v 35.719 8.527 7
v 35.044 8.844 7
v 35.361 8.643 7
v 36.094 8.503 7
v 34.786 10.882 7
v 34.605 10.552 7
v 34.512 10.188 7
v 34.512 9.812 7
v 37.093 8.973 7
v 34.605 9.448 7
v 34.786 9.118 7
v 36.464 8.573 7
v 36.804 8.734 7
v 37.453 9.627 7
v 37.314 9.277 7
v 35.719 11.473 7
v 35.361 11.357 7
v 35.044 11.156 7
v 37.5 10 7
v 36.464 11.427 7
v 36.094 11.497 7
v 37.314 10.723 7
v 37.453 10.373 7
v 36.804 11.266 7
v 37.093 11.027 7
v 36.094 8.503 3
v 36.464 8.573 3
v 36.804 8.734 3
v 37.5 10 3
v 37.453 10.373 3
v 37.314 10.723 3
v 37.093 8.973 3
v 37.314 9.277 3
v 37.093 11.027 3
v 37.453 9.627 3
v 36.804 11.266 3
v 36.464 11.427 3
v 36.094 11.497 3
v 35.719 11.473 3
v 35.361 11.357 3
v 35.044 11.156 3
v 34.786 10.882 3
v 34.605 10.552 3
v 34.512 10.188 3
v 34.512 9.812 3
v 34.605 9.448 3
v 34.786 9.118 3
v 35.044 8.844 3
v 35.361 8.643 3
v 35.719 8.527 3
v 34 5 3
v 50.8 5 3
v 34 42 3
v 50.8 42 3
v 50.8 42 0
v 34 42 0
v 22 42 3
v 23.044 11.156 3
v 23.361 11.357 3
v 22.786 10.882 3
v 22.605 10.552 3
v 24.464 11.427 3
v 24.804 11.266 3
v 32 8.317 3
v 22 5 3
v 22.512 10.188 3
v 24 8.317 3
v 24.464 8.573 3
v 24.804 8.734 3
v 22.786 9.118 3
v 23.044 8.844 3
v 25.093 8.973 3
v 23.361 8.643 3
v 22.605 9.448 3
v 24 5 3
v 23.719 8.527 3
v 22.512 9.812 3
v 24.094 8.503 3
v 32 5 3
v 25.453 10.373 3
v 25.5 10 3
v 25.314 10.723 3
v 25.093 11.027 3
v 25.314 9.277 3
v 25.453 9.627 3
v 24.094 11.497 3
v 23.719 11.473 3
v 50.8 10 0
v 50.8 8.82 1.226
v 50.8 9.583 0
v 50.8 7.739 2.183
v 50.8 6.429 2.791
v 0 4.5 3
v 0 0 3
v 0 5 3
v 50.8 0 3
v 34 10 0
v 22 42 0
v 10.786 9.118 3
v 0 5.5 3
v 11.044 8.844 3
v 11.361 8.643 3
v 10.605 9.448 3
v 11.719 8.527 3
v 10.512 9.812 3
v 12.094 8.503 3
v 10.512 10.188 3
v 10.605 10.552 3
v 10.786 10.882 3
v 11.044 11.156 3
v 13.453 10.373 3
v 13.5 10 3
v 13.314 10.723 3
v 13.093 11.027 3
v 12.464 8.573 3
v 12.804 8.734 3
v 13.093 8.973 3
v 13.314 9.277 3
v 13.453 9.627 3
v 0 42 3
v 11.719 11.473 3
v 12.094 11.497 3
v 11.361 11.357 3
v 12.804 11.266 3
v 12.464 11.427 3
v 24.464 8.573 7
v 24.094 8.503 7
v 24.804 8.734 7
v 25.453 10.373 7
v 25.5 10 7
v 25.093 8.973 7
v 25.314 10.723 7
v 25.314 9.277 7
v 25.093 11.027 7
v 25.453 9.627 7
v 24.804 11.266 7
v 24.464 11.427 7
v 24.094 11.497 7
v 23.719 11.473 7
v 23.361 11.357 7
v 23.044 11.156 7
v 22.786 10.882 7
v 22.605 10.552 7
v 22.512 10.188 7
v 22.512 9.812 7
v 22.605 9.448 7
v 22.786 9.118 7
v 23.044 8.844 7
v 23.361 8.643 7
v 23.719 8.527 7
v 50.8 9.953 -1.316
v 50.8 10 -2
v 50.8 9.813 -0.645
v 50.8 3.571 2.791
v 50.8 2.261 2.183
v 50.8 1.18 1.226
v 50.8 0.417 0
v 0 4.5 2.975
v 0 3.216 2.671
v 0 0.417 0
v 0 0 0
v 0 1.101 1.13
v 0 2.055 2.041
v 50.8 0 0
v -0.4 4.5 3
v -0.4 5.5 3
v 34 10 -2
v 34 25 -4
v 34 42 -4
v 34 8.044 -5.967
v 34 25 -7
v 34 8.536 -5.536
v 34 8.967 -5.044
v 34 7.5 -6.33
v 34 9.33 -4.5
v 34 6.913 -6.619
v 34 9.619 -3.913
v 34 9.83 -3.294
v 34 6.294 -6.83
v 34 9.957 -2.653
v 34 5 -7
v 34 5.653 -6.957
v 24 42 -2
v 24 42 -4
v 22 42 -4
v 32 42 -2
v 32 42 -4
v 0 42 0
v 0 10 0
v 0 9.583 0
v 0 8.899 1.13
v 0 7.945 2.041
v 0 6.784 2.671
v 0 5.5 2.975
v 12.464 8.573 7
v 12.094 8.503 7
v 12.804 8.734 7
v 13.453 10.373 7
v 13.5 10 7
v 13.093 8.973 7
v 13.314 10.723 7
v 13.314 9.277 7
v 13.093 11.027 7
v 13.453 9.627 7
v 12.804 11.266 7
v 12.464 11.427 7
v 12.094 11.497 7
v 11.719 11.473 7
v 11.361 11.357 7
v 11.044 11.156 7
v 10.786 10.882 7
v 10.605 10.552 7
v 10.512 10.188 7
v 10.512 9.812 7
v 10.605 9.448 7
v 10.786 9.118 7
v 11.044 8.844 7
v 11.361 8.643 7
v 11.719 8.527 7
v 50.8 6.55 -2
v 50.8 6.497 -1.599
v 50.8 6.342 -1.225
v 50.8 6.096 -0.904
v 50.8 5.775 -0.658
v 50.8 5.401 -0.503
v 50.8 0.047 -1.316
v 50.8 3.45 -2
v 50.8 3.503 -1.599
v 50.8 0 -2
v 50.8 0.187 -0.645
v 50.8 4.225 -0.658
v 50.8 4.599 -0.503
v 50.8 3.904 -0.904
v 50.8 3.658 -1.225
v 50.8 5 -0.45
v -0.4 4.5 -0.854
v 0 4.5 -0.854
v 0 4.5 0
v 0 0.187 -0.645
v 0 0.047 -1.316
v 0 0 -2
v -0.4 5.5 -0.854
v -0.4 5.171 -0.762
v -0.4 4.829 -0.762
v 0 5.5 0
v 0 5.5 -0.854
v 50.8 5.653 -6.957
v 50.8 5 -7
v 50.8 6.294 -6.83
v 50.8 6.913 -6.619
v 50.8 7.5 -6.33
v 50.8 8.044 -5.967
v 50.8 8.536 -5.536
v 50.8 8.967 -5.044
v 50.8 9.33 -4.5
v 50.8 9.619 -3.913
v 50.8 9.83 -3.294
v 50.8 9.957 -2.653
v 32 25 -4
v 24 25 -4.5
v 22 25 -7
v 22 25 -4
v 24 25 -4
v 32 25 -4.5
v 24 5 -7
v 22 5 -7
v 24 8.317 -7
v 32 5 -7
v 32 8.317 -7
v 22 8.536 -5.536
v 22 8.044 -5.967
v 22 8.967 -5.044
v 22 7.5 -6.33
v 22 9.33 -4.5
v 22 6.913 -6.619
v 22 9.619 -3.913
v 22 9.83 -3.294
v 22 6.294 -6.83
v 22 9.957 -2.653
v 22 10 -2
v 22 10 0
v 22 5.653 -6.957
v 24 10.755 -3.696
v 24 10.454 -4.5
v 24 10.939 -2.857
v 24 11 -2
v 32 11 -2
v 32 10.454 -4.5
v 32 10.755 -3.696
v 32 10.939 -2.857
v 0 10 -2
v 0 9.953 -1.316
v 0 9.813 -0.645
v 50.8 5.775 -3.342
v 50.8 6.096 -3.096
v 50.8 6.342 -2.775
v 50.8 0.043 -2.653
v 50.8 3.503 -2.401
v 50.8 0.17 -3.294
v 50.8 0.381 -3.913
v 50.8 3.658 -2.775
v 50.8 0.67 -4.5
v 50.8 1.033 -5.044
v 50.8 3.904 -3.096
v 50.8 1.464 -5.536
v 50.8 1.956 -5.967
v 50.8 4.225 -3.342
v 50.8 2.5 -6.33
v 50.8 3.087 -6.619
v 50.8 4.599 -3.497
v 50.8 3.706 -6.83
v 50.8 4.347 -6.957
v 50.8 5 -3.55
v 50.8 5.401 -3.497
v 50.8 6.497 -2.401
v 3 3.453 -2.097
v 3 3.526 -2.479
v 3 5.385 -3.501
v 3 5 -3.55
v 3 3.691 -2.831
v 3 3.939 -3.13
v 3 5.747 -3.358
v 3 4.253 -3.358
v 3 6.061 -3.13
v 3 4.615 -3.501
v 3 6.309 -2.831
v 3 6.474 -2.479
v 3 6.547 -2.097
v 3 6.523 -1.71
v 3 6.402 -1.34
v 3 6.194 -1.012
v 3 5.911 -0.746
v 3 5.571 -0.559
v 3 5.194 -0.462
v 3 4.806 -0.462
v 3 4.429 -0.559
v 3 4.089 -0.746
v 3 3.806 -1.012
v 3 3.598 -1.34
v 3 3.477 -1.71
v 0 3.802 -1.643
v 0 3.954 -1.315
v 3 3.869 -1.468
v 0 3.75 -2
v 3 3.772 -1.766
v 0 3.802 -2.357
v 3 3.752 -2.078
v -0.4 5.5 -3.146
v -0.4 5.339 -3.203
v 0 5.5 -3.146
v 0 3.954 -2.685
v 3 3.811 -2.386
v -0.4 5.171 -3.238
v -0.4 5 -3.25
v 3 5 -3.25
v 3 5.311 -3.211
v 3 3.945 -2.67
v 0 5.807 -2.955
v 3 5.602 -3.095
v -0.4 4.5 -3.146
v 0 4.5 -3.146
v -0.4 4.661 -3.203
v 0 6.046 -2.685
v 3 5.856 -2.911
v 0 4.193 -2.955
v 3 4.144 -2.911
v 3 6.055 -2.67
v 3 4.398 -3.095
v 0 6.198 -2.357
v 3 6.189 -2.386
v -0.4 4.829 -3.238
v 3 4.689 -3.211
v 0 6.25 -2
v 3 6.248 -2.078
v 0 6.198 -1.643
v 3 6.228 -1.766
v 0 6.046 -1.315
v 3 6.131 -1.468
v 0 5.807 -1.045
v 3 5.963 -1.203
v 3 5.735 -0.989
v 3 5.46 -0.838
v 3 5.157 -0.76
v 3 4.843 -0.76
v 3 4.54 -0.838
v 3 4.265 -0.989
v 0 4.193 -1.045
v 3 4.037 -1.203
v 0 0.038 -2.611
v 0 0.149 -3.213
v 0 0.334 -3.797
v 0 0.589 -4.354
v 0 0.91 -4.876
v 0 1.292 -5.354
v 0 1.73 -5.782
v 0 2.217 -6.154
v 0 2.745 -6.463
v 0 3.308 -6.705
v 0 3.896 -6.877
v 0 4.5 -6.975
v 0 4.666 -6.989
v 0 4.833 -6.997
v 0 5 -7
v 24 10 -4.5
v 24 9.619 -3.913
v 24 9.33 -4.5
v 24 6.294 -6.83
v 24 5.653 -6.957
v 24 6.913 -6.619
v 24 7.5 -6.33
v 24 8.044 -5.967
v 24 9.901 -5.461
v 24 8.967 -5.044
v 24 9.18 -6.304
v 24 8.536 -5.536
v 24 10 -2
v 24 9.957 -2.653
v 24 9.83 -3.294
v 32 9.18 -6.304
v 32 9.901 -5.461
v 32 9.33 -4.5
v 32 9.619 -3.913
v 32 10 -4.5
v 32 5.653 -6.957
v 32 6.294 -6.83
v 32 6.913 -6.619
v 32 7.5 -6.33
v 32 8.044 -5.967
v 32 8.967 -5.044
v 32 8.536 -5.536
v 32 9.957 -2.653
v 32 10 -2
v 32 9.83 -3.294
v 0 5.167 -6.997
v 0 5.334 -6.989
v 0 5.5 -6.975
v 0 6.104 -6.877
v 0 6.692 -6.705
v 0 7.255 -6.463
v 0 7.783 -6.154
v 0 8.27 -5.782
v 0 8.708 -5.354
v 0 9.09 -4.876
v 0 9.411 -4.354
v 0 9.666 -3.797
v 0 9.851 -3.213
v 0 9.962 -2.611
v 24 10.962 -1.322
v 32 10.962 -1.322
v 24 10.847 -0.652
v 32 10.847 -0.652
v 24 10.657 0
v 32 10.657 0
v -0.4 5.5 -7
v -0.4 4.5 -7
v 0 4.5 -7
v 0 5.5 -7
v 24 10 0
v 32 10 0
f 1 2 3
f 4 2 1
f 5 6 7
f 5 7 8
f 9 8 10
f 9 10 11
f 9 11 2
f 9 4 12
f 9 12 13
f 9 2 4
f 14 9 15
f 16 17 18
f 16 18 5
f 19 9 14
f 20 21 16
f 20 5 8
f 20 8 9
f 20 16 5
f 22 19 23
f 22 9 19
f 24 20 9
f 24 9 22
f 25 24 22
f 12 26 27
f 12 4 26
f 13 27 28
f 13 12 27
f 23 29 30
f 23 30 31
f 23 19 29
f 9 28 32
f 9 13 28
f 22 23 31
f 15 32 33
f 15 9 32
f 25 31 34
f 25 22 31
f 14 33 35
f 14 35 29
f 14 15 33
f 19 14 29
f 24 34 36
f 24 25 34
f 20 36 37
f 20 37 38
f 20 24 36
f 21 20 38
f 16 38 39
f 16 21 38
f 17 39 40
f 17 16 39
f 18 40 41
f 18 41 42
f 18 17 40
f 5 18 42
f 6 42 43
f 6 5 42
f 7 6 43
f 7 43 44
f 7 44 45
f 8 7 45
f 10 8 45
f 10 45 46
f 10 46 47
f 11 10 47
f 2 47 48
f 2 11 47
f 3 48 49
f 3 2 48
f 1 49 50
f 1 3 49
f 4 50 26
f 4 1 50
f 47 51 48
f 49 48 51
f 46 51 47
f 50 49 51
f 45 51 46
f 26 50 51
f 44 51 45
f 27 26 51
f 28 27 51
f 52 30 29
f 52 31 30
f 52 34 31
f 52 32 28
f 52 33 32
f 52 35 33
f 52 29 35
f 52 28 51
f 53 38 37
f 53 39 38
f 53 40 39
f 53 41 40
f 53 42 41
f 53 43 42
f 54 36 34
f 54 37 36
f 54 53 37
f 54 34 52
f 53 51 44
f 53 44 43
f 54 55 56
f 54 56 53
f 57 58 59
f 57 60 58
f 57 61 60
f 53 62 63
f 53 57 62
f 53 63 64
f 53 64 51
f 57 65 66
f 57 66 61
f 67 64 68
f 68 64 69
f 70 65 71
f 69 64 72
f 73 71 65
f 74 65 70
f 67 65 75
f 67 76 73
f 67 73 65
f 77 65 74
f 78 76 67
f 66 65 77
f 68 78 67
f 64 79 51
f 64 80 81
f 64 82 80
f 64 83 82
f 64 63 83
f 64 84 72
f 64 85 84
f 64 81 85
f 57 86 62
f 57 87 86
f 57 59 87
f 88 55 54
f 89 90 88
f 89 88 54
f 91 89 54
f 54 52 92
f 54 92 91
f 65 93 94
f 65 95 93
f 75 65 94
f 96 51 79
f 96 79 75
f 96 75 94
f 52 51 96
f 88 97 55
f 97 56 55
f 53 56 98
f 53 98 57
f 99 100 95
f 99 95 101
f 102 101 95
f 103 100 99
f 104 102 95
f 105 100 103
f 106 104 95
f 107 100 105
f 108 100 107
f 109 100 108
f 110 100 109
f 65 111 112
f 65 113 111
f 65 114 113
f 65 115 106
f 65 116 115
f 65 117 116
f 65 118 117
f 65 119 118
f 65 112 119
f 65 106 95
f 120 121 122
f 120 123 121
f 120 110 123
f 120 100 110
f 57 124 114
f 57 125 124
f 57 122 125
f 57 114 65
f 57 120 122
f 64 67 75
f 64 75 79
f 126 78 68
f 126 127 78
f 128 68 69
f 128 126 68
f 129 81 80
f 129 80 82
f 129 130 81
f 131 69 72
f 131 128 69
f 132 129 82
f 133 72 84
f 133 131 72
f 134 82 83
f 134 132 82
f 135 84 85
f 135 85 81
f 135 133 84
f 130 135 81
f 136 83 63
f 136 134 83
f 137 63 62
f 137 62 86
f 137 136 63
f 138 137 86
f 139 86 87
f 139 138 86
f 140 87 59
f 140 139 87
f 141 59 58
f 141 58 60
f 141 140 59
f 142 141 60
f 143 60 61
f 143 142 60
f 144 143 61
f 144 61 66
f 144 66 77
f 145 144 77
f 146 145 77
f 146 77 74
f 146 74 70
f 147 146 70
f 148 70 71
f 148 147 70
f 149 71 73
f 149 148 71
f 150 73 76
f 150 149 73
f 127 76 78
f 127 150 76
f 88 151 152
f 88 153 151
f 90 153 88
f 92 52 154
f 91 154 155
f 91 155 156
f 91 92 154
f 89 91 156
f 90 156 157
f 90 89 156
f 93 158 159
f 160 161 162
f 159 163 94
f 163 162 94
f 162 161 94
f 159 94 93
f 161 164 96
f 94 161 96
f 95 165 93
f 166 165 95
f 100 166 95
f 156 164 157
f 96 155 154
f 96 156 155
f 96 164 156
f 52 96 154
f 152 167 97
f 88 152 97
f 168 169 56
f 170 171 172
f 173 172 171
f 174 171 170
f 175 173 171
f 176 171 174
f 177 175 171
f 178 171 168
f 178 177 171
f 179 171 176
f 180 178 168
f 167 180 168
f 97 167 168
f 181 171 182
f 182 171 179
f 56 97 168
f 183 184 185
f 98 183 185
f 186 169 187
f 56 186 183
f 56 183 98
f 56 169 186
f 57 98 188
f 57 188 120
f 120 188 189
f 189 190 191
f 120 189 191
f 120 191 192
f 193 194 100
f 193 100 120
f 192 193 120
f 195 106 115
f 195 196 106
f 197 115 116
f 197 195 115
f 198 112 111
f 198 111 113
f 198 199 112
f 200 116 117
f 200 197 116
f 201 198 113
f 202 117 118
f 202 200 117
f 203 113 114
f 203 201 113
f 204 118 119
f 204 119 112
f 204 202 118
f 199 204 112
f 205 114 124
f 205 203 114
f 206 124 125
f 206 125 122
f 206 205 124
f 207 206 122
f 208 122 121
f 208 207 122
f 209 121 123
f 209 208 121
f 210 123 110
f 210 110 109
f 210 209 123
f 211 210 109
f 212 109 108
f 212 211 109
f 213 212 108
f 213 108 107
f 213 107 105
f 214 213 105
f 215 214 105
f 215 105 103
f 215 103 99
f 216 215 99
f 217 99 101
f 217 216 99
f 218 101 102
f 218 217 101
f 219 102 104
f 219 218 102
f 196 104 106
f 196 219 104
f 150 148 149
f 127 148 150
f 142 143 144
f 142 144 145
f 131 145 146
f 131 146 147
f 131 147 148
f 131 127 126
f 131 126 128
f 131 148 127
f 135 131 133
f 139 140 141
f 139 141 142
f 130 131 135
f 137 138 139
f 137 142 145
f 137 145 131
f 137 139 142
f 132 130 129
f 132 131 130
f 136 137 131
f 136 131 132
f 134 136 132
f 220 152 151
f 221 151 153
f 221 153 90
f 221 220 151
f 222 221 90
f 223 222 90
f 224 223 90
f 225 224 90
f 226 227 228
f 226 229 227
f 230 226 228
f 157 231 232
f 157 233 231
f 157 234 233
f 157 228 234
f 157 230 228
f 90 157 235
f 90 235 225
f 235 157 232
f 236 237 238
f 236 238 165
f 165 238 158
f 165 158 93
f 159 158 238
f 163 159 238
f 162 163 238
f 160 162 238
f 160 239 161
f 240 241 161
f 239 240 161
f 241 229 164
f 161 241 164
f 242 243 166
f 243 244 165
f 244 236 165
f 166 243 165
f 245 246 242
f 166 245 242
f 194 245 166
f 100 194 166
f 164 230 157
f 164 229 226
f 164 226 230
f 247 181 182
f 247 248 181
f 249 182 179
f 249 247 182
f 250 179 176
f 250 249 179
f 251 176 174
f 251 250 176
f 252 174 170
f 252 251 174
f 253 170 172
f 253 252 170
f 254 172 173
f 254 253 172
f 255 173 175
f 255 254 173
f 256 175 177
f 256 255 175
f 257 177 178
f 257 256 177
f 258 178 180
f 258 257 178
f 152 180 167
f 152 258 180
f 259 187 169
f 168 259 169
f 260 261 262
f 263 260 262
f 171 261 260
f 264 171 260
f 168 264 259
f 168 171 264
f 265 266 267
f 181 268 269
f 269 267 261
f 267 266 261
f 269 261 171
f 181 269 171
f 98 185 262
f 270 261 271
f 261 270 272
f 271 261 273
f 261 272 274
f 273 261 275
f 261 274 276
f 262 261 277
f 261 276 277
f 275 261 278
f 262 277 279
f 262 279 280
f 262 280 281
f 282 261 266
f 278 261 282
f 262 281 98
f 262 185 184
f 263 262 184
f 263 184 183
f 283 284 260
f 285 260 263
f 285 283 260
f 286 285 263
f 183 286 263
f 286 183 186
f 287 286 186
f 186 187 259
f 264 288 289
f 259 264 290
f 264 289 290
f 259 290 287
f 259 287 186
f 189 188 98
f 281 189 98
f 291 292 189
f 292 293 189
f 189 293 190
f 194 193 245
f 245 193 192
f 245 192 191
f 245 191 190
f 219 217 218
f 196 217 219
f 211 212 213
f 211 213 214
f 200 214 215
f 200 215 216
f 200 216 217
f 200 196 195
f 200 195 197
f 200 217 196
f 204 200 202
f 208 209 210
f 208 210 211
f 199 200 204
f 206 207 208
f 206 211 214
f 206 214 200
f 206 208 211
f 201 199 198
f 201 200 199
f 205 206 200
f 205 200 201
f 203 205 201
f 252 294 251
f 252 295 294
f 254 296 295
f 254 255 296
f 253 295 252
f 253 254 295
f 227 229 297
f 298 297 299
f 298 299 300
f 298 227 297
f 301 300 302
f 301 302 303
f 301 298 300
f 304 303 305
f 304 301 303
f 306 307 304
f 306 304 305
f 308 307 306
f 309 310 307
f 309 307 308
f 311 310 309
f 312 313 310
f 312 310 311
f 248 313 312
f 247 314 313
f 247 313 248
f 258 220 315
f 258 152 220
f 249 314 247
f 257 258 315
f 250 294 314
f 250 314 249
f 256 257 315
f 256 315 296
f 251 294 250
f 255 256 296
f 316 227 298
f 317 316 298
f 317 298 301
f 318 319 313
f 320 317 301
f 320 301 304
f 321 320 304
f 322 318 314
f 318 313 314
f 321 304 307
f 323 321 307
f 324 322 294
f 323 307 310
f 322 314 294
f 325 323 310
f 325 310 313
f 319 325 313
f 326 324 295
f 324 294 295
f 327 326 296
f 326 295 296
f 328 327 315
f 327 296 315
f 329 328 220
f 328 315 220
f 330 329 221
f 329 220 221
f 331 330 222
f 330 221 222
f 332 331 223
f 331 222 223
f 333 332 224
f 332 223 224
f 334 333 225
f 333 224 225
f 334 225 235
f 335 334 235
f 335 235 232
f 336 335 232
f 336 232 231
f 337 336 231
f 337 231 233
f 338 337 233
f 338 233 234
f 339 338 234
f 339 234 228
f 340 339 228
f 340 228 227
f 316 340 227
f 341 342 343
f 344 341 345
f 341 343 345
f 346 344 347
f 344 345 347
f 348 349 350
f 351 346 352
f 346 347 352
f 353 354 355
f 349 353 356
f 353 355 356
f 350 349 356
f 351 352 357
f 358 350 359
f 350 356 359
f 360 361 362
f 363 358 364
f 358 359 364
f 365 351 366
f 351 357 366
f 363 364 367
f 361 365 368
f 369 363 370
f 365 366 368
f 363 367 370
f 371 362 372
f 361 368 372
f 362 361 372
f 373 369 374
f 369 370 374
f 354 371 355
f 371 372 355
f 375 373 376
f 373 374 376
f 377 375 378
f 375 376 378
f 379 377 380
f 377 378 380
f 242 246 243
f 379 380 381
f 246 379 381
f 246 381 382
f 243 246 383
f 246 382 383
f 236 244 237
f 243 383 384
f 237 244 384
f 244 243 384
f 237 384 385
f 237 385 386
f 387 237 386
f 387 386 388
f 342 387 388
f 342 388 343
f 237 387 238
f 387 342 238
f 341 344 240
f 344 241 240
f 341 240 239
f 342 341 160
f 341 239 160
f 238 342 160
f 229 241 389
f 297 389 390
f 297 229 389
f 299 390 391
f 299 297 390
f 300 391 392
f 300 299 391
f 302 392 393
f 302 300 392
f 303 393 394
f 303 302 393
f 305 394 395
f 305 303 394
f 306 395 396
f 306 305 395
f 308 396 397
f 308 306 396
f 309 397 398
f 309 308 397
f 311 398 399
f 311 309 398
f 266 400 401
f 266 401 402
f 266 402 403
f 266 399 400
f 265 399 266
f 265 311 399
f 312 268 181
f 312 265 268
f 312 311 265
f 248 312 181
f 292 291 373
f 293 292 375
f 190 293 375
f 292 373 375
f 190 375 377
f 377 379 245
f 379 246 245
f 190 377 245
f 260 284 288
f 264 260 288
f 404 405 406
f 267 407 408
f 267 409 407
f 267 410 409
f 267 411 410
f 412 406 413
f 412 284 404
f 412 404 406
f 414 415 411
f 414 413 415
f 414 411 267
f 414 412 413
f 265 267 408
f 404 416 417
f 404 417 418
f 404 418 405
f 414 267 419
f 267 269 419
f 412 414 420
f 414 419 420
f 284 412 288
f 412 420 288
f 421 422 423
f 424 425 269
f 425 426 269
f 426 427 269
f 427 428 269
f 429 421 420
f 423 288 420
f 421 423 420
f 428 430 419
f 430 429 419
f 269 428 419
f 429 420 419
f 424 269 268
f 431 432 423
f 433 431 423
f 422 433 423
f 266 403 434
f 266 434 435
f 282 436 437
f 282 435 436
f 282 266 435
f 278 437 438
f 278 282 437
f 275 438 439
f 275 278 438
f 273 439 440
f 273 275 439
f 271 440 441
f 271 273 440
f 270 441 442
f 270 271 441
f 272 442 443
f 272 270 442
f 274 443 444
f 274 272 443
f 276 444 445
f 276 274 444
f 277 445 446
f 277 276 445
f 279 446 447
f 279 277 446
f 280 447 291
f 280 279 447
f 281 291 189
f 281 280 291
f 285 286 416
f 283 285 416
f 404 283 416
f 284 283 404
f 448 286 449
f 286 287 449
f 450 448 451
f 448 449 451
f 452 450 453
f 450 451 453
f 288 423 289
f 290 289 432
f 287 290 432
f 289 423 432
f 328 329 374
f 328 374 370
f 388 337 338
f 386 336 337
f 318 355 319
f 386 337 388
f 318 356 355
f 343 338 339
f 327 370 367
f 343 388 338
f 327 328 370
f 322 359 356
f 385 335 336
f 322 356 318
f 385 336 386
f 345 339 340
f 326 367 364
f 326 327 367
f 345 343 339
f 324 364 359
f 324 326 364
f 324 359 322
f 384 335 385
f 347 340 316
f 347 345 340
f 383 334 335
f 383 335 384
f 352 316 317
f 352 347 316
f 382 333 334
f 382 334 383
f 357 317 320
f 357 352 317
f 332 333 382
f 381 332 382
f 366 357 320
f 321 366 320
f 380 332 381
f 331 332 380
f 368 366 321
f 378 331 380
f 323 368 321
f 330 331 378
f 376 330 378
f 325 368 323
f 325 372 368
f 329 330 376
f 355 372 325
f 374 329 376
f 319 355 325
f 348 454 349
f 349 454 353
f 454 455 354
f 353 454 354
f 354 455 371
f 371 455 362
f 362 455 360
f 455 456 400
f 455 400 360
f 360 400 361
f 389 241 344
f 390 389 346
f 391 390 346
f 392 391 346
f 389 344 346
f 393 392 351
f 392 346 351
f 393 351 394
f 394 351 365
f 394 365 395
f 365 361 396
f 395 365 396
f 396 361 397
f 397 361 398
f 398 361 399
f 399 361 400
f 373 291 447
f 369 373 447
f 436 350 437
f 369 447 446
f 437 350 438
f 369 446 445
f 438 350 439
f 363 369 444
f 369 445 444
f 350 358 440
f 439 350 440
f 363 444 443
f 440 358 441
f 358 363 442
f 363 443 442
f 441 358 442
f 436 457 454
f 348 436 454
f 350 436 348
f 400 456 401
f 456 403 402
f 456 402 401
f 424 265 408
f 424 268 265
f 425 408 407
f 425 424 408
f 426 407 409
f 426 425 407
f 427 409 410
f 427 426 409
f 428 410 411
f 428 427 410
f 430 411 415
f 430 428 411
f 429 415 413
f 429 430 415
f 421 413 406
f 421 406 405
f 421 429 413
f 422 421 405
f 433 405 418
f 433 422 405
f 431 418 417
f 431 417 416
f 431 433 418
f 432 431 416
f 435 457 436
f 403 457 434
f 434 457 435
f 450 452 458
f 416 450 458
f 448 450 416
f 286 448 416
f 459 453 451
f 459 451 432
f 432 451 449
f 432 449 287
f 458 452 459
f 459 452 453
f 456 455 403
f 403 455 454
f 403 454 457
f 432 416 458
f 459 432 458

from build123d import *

# Parameters (mm, degrees)
CYLINDER004_R           = 1.5
CYLINDER004_DEPTH       = 4
CYLINDER005_R           = 1.5
CYLINDER005_DEPTH       = 4
CYLINDER006_R           = 1.5
CYLINDER006_DEPTH       = 4
CYLINDER002_R           = 1.25
CYLINDER002_DEPTH       = 10
CYLINDER002_PITCH_ANGLE = 90
CYLINDER001_R           = 1.55
CYLINDER001_DEPTH       = 50.8
CYLINDER001_PITCH_ANGLE = 90
CYLINDER003_R           = 6
CYLINDER003_DEPTH       = 8
CYLINDER003_PITCH_ANGLE = 90
BOX005_W                = 12
BOX005_H                = 18
BOX005_DEPTH            = 3
BOX004_W                = 8
BOX004_H                = 50
BOX004_DEPTH            = 2.5
BOX003_W                = 12
BOX003_H                = 37
BOX003_DEPTH            = 10
BOX002_W                = 0.4
BOX002_H                = 1
BOX002_DEPTH            = 10
BOX001_W                = 50.8
BOX001_H                = 10
BOX001_DEPTH            = 2
CYLINDER_R              = 5
CYLINDER_DEPTH          = 50.8
CYLINDER_PITCH_ANGLE    = 90
BOX_W                   = 50.8
BOX_H                   = 42
BOX_DEPTH               = 3


with BuildPart() as cylinder004:
    # Cylinder004 → Cylinder004 (new body)
    with BuildSketch(Plane(origin=(12, 10, 3), x_dir=(1, 0, 0), z_dir=(0, 0, 1))):
        Circle(CYLINDER004_R)
    extrude(amount=CYLINDER004_DEPTH)


with BuildPart() as cylinder005:
    # Cylinder005 → Cylinder005 (new body)
    with BuildSketch(Plane(origin=(24, 10, 3), x_dir=(1, 0, 0), z_dir=(0, 0, 1))):
        Circle(CYLINDER005_R)
    extrude(amount=CYLINDER005_DEPTH)


with BuildPart() as cylinder006:
    # Cylinder006 → Cylinder006 (new body)
    with BuildSketch(Plane(origin=(36, 10, 3), x_dir=(1, 0, 0), z_dir=(0, 0, 1))):
        Circle(CYLINDER006_R)
    extrude(amount=CYLINDER006_DEPTH)


with BuildPart() as cylinder002:
    # Cylinder002 → Cylinder002 (new body)
    with BuildSketch(Plane.XY):
        Circle(CYLINDER002_R)
    extrude(amount=CYLINDER002_DEPTH)


with BuildPart() as cylinder002_1:
    # Cylinder002 pitch: moved
    add(cylinder002.part.rotate(Axis((0, 0, 0), (0, 1, 0)), CYLINDER002_PITCH_ANGLE))


with BuildPart() as cylinder002_2:
    # Cylinder002 placement: moved
    add(cylinder002_1.part.moved(Location((-1, 5, -2))))


with BuildPart() as cylinder001:
    # Cylinder001 → Cylinder001 (new body)
    with BuildSketch(Plane.XY):
        Circle(CYLINDER001_R)
    extrude(amount=CYLINDER001_DEPTH)


with BuildPart() as cylinder001_1:
    # Cylinder001 pitch: moved
    add(cylinder001.part.rotate(Axis((0, 0, 0), (0, 1, 0)), CYLINDER001_PITCH_ANGLE))


with BuildPart() as cylinder001_2:
    # Cylinder001 placement: moved
    add(cylinder001_1.part.moved(Location((3, 5, -2))))


with BuildPart() as cylinder003:
    # Cylinder003 → Cylinder003 (new body)
    with BuildSketch(Plane.XY):
        Circle(CYLINDER003_R)
    extrude(amount=CYLINDER003_DEPTH)


with BuildPart() as cylinder003_1:
    # Cylinder003 pitch: moved
    add(cylinder003.part.rotate(Axis((0, 0, 0), (0, 1, 0)), CYLINDER003_PITCH_ANGLE))


with BuildPart() as cylinder003_2:
    # Cylinder003 placement: moved
    add(cylinder003_1.part.moved(Location((24, 5, -2))))


with BuildPart() as cube005:
    # Box005 → Box005 (new body)
    with BuildSketch(Plane(origin=(22, 25, -7), x_dir=(1, 0, 0), z_dir=(0, 0, 1))):
        with Locations((6, 9)):
            Rectangle(BOX005_W, BOX005_H)
    extrude(amount=BOX005_DEPTH)


with BuildPart() as cube004:
    # Box004 → Box004 (new body)
    with BuildSketch(Plane(origin=(24, 10, -4.5), x_dir=(1, 0, 0), z_dir=(0, 0, 1))):
        with Locations((4, 25)):
            Rectangle(BOX004_W, BOX004_H)
    extrude(amount=BOX004_DEPTH)


with BuildPart() as cut002:
    # Box003 → Box003 (new body)
    with BuildSketch(Plane(origin=(22, 5, -7), x_dir=(1, 0, 0), z_dir=(0, 0, 1))):
        with Locations((6, 18.5)):
            Rectangle(BOX003_W, BOX003_H)
    extrude(amount=BOX003_DEPTH)

    # Cut: cut Cube004
    add(cube004.part, mode=Mode.SUBTRACT)

    # Cut001: cut Cube005
    add(cube005.part, mode=Mode.SUBTRACT)

    # Cut002: cut Cylinder003
    add(cylinder003_2.part, mode=Mode.SUBTRACT)


with BuildPart() as cube002:
    # Box002 → Box002 (new body)
    with BuildSketch(Plane(origin=(-0.4, 4.5, -7), x_dir=(1, 0, 0), z_dir=(0, 0, 1))):
        with Locations((0.2, 0.5)):
            Rectangle(BOX002_W, BOX002_H)
    extrude(amount=BOX002_DEPTH)


with BuildPart() as cube001:
    # Box001 → Box001 (new body)
    with BuildSketch(Plane.XY.offset(-2)):
        with Locations((25.4, 5)):
            Rectangle(BOX001_W, BOX001_H)
    extrude(amount=BOX001_DEPTH)


with BuildPart() as cylinder:
    # Cylinder → Cylinder (new body)
    with BuildSketch(Plane.XY):
        Circle(CYLINDER_R)
    extrude(amount=CYLINDER_DEPTH)


with BuildPart() as cylinder_1:
    # Cylinder pitch: moved
    add(cylinder.part.rotate(Axis((0, 0, 0), (0, 1, 0)), CYLINDER_PITCH_ANGLE))


with BuildPart() as cylinder_2:
    # Cylinder placement: moved
    add(cylinder_1.part.moved(Location((0, 5, -2))))


with BuildPart() as fusion003:
    # Box → Box (new body)
    with BuildSketch(Plane.XY):
        with Locations((25.4, 21)):
            Rectangle(BOX_W, BOX_H)
    extrude(amount=BOX_DEPTH)

    # Fusion: union Cube001, Cylinder
    add(cube001.part)
    add(cylinder_2.part)

    # Fusion001: union Cube002
    add(cube002.part)

    # Fusion002: union Cut002
    add(cut002.part)

    # Cut003: cut Cylinder001
    add(cylinder001_2.part, mode=Mode.SUBTRACT)

    # Cut004: cut Cylinder002
    add(cylinder002_2.part, mode=Mode.SUBTRACT)

    # Fusion003: union Cylinder004, Cylinder005, Cylinder006
    add(cylinder004.part)
    add(cylinder005.part)
    add(cylinder006.part)


solid = fusion003.part
